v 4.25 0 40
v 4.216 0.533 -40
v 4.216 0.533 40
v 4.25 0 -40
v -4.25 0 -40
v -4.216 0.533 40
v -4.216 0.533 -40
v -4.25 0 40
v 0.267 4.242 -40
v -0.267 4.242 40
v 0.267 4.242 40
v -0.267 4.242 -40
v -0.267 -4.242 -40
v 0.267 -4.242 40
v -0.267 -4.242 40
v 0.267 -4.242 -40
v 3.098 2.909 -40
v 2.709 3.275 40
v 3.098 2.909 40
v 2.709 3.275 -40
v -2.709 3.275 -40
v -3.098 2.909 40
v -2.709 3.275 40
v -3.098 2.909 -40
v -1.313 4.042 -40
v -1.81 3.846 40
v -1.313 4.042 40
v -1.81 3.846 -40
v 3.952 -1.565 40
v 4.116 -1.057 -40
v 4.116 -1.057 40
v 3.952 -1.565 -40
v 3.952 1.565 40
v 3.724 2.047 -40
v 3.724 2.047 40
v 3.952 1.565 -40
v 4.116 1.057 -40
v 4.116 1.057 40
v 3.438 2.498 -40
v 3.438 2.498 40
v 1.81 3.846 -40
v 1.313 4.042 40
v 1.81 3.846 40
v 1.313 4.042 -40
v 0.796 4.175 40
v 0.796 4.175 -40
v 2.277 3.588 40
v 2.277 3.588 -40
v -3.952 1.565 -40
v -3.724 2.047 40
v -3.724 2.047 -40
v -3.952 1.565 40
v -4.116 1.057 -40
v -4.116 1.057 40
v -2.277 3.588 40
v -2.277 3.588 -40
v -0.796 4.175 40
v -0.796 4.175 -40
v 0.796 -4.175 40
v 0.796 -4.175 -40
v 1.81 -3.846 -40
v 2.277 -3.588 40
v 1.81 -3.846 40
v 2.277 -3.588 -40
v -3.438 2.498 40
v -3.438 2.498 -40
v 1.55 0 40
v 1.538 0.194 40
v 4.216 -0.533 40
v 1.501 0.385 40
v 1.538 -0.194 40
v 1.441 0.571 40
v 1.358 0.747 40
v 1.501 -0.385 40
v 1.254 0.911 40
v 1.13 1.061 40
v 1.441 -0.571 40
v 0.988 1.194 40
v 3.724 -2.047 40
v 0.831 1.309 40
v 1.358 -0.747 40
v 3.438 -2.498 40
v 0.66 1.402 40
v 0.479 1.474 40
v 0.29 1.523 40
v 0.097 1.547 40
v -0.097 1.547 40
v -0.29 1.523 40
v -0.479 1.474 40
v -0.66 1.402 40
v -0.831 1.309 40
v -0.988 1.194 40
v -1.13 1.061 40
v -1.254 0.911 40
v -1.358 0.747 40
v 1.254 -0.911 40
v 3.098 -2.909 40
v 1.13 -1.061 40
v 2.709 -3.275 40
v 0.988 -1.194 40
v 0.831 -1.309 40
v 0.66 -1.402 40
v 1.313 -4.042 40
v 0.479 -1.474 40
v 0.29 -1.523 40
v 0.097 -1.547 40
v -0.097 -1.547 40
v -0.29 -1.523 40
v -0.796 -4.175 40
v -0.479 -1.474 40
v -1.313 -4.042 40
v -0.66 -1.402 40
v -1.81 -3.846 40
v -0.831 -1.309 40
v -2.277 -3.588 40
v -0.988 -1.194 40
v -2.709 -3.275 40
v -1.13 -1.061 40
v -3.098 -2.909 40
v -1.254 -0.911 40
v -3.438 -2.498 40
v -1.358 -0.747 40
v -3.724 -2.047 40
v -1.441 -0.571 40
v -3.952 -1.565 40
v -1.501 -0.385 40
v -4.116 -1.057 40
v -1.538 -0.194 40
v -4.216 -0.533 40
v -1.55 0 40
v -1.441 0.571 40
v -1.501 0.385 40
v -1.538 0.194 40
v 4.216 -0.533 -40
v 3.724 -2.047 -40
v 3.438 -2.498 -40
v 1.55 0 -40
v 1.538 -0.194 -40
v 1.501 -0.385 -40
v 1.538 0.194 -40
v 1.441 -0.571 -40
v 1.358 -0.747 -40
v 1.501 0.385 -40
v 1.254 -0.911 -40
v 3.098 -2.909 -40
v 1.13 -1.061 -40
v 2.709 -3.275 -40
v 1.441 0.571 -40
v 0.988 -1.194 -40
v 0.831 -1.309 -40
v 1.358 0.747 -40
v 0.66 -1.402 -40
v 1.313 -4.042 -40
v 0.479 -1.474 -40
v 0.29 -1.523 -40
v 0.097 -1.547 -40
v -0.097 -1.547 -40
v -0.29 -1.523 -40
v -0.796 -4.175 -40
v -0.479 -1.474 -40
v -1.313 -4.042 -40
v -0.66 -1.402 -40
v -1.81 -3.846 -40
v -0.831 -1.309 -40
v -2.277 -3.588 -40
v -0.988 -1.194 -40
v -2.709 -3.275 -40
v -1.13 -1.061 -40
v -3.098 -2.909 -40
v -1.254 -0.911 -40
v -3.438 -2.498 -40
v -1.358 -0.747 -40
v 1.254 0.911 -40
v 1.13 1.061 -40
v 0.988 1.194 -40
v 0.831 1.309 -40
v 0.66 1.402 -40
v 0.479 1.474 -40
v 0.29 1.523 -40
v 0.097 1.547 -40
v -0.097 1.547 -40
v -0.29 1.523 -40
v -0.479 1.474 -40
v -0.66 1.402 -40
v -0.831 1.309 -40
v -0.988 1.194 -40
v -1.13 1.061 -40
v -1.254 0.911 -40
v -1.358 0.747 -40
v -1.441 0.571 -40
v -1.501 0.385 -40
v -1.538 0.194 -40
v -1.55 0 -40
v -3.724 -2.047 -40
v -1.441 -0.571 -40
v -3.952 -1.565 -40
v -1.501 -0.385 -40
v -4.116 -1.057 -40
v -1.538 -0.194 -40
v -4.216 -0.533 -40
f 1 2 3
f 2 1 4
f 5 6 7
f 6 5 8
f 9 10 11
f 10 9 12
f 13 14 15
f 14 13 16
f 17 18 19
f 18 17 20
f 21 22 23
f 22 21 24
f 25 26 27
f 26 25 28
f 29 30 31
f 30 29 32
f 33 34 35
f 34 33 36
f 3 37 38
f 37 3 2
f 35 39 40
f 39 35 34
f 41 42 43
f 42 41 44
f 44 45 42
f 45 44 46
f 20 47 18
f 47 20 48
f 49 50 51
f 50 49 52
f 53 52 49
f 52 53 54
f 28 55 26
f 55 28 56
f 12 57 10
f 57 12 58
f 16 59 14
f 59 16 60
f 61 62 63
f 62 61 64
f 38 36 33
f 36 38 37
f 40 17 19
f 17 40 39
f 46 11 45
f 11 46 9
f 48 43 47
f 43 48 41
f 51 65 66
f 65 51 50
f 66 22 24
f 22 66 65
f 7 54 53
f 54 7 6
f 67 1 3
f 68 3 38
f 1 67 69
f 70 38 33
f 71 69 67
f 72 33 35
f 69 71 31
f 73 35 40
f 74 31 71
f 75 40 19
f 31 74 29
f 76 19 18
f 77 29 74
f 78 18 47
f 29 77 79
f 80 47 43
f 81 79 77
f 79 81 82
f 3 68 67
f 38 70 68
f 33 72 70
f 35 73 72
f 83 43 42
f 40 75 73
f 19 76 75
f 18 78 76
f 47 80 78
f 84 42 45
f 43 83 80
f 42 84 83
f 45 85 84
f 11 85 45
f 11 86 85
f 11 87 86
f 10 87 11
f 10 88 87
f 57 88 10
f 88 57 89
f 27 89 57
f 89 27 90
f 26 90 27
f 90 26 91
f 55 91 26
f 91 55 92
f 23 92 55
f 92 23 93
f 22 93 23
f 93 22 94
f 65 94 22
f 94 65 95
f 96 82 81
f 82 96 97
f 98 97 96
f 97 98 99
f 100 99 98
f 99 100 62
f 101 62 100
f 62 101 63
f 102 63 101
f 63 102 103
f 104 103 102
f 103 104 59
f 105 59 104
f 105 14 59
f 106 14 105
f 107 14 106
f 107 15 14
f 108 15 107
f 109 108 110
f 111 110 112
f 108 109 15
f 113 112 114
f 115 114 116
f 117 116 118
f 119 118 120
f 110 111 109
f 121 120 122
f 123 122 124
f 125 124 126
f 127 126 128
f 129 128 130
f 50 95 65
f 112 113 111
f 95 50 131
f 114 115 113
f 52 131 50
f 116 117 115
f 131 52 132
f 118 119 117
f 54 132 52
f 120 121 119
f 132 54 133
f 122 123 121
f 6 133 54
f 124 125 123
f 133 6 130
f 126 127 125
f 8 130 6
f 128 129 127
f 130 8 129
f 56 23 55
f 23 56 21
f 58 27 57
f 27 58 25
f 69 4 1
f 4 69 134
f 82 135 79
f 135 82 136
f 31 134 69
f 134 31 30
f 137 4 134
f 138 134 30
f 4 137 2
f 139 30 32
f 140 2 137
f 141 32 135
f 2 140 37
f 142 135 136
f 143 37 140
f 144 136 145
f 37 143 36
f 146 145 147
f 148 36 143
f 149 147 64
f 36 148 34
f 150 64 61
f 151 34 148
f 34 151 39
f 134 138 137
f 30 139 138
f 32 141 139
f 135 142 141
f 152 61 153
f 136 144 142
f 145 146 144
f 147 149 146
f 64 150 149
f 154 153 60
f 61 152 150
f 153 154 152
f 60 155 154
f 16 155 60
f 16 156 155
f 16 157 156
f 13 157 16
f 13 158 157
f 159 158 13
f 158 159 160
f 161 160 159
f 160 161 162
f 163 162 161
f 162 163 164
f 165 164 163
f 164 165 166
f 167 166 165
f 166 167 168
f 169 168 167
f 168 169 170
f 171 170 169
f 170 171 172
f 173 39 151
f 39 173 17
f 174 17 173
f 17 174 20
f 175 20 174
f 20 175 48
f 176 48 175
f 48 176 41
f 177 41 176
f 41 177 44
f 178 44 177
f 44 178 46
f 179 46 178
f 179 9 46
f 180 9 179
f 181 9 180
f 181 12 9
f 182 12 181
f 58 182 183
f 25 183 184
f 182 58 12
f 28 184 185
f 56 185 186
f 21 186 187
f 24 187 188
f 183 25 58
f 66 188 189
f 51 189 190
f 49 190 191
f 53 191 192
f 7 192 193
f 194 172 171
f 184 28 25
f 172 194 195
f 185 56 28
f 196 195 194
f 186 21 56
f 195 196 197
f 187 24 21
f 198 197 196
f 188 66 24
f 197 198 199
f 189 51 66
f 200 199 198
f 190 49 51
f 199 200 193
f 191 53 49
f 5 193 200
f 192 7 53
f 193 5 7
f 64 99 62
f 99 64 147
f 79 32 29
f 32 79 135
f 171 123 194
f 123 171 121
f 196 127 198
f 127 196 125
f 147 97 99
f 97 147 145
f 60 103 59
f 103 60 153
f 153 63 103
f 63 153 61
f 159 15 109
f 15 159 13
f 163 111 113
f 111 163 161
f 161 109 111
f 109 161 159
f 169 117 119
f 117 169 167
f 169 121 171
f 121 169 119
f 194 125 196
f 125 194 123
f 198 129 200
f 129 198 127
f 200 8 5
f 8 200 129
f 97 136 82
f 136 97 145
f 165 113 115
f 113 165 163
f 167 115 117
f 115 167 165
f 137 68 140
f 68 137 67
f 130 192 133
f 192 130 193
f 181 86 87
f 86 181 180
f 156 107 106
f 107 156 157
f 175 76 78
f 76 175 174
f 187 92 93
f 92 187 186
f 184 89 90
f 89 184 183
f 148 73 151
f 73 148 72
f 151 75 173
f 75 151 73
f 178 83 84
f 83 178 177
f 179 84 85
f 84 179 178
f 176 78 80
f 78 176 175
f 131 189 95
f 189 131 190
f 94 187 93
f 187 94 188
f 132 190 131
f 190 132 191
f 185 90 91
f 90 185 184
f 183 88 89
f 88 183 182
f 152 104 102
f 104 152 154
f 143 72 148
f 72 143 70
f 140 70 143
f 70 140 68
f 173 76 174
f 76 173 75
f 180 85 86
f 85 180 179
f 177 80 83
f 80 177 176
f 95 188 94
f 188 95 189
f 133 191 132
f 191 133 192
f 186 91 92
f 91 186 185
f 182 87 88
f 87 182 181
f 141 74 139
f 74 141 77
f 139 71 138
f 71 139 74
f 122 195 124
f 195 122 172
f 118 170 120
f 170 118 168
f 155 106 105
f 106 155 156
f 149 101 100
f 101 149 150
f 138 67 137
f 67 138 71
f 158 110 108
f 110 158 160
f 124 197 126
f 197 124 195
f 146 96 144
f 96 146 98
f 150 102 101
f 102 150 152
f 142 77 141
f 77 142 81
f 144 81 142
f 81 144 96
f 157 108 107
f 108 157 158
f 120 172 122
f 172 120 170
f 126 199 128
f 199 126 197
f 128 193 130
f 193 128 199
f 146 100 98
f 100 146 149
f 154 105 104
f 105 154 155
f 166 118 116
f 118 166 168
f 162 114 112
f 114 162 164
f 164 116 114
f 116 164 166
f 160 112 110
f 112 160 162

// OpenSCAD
$fn = 50;


difference() {
	union() {
		translate(v = [0, 0, -40.0000000000]) {
			cylinder(h = 80, r = 4.2500000000);
		}
	}
	union() {
		translate(v = [0, 0, -100.0000000000]) {
			cylinder(h = 200, r = 1.5500000000);
		}
	}
}
